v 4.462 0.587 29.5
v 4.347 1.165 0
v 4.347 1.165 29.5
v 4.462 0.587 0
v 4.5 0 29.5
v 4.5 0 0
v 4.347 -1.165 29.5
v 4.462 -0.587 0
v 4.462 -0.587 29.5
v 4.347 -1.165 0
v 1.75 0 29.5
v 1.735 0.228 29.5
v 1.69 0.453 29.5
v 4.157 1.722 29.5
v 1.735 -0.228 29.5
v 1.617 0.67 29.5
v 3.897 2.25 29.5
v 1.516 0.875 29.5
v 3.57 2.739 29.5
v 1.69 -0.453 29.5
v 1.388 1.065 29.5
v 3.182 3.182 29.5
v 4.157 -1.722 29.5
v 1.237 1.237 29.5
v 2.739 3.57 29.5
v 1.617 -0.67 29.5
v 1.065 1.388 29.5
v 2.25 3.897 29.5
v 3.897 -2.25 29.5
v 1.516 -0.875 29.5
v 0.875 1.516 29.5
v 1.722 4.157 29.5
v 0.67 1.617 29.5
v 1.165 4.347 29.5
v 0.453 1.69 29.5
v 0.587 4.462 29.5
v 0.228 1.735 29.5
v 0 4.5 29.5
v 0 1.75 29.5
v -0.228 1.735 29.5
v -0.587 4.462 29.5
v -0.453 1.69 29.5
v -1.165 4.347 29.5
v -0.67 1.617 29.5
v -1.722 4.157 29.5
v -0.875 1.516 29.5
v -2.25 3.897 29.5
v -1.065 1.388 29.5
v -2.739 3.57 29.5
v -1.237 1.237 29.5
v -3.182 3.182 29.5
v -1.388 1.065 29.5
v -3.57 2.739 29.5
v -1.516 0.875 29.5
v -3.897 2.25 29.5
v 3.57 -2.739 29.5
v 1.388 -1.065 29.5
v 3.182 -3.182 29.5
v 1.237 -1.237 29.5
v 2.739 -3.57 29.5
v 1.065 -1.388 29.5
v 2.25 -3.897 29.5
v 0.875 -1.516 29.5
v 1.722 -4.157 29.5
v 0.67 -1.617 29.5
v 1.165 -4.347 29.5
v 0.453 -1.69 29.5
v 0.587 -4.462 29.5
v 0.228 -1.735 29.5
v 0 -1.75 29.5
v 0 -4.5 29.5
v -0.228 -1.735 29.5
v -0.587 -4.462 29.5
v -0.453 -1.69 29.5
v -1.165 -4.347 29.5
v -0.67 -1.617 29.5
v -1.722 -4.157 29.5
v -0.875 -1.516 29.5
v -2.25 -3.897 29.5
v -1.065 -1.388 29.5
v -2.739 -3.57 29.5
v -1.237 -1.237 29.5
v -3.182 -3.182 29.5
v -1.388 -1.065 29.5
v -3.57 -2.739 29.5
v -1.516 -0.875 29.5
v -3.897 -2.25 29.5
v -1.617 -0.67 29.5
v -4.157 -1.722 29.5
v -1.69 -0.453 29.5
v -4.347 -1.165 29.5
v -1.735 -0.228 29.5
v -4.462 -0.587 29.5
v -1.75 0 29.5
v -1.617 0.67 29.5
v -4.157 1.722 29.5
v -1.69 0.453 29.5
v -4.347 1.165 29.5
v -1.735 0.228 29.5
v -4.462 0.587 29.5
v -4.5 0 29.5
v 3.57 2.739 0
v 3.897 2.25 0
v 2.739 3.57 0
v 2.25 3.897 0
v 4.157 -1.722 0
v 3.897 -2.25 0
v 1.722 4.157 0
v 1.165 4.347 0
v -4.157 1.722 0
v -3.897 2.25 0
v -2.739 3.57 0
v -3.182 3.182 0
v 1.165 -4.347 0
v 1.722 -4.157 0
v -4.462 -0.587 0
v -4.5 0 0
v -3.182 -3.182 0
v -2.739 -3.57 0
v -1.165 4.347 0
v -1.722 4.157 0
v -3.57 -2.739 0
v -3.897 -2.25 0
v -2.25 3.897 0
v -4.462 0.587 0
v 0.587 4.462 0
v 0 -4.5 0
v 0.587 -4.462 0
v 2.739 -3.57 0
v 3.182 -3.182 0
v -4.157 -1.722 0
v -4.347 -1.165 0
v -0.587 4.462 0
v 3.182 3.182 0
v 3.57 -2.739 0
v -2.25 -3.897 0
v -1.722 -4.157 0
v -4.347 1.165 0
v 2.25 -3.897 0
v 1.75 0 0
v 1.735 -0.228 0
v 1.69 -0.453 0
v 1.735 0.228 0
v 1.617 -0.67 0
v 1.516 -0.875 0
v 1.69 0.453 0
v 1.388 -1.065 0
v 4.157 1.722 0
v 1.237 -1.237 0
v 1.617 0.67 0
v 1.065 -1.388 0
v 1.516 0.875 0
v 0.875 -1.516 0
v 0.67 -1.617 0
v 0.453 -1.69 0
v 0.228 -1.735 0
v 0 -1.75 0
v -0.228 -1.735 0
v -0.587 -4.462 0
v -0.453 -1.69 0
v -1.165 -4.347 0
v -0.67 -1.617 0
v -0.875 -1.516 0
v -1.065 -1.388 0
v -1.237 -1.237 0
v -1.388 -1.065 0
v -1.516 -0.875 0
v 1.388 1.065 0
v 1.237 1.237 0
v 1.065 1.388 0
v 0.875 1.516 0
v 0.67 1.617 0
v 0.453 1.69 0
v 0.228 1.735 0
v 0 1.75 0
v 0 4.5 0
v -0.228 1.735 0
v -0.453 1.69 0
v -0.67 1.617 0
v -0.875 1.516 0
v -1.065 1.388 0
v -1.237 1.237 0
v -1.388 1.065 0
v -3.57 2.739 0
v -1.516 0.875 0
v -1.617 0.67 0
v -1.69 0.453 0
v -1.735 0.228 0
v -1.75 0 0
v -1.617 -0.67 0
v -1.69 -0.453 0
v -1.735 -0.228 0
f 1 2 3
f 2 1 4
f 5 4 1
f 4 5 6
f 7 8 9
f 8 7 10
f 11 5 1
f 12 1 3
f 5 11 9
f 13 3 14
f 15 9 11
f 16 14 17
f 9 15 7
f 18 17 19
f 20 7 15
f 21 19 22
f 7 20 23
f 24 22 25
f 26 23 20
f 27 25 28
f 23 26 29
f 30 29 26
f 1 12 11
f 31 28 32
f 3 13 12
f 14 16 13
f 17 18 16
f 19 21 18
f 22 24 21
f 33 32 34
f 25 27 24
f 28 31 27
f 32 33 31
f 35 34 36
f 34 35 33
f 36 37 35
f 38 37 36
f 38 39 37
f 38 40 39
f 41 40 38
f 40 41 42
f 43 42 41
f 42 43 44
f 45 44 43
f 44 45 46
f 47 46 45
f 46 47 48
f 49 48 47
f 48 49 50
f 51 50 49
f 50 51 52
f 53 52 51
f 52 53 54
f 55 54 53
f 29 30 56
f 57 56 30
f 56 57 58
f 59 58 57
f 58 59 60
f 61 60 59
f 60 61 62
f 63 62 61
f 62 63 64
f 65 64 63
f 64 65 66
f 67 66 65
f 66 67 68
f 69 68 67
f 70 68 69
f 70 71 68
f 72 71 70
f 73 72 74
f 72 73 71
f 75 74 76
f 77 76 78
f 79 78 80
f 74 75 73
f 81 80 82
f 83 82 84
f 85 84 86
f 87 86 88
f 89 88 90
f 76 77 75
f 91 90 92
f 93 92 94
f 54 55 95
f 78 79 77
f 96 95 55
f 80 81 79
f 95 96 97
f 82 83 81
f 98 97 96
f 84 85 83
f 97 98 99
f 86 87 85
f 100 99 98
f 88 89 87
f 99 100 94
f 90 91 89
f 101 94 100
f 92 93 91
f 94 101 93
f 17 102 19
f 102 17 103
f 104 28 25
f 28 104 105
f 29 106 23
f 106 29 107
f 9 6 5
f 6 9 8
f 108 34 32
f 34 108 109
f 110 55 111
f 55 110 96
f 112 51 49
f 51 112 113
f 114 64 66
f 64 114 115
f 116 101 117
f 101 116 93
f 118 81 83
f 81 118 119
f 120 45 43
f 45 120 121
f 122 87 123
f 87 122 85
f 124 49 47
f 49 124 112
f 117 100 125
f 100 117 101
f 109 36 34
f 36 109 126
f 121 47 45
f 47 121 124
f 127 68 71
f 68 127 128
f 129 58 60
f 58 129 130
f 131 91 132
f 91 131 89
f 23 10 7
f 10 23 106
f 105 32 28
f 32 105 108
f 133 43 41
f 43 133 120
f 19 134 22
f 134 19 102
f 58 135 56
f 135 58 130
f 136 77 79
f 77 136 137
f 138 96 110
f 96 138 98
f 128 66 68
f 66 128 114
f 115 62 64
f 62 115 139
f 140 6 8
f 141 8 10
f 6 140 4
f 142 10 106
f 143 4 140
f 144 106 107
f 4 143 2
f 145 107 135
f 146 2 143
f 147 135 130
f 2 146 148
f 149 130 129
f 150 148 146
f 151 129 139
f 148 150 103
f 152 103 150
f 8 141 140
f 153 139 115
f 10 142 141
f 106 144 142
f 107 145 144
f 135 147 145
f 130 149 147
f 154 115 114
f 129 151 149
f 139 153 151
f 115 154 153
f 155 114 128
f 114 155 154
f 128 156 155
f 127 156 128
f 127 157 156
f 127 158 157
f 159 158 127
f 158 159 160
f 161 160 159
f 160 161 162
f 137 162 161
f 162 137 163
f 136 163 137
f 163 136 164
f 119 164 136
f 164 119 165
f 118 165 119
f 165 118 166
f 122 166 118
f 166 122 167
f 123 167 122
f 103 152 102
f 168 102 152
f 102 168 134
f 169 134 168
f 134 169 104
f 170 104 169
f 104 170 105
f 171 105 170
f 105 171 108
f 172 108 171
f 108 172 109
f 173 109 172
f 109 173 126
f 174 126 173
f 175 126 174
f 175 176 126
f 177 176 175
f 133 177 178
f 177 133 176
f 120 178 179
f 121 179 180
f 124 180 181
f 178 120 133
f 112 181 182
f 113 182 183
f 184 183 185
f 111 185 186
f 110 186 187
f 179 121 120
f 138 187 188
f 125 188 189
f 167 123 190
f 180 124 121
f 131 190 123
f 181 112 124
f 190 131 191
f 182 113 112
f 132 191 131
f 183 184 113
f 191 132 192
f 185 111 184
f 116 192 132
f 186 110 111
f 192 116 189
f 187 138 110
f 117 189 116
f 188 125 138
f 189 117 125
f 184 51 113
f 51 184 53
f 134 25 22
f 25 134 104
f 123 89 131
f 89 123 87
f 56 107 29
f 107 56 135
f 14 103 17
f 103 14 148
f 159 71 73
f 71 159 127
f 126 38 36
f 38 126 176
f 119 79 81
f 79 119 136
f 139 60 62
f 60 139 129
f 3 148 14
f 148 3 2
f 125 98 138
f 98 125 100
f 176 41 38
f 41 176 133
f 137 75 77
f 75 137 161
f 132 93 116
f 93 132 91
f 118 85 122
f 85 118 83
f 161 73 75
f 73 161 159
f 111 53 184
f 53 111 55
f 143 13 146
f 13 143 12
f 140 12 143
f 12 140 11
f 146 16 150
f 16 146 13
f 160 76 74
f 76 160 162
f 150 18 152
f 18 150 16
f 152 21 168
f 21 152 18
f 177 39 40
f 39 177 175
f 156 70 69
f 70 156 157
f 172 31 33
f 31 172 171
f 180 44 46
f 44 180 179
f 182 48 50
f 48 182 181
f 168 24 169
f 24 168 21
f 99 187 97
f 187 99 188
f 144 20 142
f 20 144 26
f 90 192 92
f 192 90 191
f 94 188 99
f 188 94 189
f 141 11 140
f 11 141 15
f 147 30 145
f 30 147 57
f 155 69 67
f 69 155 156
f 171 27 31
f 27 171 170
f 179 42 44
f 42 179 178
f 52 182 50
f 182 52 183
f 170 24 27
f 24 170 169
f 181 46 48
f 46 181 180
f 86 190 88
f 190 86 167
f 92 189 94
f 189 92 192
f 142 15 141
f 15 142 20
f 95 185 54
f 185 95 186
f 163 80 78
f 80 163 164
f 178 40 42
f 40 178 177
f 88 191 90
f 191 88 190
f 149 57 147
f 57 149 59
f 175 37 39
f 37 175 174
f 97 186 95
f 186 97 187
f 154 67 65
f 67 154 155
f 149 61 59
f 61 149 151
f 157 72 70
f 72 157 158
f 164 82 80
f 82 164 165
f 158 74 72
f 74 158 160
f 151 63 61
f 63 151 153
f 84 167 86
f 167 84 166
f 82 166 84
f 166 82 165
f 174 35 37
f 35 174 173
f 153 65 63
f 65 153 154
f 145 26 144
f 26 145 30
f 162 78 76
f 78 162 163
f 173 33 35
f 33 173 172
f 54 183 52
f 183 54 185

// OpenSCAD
// Gen-CY — frame standoff tube between stator and an endbell, on each M3 frame rod (outside rotor OD).
// Print x4. Height = frame_standoff_h (rotor + steel + hub + collar + running clearance).
include <parameters.scad>;
$fn = 48;
difference() {
    cylinder(d=standoff_od, h=frame_standoff_h);
    translate([0, 0, -0.1]) cylinder(d=m3_clear, h=frame_standoff_h + 0.2);
}
